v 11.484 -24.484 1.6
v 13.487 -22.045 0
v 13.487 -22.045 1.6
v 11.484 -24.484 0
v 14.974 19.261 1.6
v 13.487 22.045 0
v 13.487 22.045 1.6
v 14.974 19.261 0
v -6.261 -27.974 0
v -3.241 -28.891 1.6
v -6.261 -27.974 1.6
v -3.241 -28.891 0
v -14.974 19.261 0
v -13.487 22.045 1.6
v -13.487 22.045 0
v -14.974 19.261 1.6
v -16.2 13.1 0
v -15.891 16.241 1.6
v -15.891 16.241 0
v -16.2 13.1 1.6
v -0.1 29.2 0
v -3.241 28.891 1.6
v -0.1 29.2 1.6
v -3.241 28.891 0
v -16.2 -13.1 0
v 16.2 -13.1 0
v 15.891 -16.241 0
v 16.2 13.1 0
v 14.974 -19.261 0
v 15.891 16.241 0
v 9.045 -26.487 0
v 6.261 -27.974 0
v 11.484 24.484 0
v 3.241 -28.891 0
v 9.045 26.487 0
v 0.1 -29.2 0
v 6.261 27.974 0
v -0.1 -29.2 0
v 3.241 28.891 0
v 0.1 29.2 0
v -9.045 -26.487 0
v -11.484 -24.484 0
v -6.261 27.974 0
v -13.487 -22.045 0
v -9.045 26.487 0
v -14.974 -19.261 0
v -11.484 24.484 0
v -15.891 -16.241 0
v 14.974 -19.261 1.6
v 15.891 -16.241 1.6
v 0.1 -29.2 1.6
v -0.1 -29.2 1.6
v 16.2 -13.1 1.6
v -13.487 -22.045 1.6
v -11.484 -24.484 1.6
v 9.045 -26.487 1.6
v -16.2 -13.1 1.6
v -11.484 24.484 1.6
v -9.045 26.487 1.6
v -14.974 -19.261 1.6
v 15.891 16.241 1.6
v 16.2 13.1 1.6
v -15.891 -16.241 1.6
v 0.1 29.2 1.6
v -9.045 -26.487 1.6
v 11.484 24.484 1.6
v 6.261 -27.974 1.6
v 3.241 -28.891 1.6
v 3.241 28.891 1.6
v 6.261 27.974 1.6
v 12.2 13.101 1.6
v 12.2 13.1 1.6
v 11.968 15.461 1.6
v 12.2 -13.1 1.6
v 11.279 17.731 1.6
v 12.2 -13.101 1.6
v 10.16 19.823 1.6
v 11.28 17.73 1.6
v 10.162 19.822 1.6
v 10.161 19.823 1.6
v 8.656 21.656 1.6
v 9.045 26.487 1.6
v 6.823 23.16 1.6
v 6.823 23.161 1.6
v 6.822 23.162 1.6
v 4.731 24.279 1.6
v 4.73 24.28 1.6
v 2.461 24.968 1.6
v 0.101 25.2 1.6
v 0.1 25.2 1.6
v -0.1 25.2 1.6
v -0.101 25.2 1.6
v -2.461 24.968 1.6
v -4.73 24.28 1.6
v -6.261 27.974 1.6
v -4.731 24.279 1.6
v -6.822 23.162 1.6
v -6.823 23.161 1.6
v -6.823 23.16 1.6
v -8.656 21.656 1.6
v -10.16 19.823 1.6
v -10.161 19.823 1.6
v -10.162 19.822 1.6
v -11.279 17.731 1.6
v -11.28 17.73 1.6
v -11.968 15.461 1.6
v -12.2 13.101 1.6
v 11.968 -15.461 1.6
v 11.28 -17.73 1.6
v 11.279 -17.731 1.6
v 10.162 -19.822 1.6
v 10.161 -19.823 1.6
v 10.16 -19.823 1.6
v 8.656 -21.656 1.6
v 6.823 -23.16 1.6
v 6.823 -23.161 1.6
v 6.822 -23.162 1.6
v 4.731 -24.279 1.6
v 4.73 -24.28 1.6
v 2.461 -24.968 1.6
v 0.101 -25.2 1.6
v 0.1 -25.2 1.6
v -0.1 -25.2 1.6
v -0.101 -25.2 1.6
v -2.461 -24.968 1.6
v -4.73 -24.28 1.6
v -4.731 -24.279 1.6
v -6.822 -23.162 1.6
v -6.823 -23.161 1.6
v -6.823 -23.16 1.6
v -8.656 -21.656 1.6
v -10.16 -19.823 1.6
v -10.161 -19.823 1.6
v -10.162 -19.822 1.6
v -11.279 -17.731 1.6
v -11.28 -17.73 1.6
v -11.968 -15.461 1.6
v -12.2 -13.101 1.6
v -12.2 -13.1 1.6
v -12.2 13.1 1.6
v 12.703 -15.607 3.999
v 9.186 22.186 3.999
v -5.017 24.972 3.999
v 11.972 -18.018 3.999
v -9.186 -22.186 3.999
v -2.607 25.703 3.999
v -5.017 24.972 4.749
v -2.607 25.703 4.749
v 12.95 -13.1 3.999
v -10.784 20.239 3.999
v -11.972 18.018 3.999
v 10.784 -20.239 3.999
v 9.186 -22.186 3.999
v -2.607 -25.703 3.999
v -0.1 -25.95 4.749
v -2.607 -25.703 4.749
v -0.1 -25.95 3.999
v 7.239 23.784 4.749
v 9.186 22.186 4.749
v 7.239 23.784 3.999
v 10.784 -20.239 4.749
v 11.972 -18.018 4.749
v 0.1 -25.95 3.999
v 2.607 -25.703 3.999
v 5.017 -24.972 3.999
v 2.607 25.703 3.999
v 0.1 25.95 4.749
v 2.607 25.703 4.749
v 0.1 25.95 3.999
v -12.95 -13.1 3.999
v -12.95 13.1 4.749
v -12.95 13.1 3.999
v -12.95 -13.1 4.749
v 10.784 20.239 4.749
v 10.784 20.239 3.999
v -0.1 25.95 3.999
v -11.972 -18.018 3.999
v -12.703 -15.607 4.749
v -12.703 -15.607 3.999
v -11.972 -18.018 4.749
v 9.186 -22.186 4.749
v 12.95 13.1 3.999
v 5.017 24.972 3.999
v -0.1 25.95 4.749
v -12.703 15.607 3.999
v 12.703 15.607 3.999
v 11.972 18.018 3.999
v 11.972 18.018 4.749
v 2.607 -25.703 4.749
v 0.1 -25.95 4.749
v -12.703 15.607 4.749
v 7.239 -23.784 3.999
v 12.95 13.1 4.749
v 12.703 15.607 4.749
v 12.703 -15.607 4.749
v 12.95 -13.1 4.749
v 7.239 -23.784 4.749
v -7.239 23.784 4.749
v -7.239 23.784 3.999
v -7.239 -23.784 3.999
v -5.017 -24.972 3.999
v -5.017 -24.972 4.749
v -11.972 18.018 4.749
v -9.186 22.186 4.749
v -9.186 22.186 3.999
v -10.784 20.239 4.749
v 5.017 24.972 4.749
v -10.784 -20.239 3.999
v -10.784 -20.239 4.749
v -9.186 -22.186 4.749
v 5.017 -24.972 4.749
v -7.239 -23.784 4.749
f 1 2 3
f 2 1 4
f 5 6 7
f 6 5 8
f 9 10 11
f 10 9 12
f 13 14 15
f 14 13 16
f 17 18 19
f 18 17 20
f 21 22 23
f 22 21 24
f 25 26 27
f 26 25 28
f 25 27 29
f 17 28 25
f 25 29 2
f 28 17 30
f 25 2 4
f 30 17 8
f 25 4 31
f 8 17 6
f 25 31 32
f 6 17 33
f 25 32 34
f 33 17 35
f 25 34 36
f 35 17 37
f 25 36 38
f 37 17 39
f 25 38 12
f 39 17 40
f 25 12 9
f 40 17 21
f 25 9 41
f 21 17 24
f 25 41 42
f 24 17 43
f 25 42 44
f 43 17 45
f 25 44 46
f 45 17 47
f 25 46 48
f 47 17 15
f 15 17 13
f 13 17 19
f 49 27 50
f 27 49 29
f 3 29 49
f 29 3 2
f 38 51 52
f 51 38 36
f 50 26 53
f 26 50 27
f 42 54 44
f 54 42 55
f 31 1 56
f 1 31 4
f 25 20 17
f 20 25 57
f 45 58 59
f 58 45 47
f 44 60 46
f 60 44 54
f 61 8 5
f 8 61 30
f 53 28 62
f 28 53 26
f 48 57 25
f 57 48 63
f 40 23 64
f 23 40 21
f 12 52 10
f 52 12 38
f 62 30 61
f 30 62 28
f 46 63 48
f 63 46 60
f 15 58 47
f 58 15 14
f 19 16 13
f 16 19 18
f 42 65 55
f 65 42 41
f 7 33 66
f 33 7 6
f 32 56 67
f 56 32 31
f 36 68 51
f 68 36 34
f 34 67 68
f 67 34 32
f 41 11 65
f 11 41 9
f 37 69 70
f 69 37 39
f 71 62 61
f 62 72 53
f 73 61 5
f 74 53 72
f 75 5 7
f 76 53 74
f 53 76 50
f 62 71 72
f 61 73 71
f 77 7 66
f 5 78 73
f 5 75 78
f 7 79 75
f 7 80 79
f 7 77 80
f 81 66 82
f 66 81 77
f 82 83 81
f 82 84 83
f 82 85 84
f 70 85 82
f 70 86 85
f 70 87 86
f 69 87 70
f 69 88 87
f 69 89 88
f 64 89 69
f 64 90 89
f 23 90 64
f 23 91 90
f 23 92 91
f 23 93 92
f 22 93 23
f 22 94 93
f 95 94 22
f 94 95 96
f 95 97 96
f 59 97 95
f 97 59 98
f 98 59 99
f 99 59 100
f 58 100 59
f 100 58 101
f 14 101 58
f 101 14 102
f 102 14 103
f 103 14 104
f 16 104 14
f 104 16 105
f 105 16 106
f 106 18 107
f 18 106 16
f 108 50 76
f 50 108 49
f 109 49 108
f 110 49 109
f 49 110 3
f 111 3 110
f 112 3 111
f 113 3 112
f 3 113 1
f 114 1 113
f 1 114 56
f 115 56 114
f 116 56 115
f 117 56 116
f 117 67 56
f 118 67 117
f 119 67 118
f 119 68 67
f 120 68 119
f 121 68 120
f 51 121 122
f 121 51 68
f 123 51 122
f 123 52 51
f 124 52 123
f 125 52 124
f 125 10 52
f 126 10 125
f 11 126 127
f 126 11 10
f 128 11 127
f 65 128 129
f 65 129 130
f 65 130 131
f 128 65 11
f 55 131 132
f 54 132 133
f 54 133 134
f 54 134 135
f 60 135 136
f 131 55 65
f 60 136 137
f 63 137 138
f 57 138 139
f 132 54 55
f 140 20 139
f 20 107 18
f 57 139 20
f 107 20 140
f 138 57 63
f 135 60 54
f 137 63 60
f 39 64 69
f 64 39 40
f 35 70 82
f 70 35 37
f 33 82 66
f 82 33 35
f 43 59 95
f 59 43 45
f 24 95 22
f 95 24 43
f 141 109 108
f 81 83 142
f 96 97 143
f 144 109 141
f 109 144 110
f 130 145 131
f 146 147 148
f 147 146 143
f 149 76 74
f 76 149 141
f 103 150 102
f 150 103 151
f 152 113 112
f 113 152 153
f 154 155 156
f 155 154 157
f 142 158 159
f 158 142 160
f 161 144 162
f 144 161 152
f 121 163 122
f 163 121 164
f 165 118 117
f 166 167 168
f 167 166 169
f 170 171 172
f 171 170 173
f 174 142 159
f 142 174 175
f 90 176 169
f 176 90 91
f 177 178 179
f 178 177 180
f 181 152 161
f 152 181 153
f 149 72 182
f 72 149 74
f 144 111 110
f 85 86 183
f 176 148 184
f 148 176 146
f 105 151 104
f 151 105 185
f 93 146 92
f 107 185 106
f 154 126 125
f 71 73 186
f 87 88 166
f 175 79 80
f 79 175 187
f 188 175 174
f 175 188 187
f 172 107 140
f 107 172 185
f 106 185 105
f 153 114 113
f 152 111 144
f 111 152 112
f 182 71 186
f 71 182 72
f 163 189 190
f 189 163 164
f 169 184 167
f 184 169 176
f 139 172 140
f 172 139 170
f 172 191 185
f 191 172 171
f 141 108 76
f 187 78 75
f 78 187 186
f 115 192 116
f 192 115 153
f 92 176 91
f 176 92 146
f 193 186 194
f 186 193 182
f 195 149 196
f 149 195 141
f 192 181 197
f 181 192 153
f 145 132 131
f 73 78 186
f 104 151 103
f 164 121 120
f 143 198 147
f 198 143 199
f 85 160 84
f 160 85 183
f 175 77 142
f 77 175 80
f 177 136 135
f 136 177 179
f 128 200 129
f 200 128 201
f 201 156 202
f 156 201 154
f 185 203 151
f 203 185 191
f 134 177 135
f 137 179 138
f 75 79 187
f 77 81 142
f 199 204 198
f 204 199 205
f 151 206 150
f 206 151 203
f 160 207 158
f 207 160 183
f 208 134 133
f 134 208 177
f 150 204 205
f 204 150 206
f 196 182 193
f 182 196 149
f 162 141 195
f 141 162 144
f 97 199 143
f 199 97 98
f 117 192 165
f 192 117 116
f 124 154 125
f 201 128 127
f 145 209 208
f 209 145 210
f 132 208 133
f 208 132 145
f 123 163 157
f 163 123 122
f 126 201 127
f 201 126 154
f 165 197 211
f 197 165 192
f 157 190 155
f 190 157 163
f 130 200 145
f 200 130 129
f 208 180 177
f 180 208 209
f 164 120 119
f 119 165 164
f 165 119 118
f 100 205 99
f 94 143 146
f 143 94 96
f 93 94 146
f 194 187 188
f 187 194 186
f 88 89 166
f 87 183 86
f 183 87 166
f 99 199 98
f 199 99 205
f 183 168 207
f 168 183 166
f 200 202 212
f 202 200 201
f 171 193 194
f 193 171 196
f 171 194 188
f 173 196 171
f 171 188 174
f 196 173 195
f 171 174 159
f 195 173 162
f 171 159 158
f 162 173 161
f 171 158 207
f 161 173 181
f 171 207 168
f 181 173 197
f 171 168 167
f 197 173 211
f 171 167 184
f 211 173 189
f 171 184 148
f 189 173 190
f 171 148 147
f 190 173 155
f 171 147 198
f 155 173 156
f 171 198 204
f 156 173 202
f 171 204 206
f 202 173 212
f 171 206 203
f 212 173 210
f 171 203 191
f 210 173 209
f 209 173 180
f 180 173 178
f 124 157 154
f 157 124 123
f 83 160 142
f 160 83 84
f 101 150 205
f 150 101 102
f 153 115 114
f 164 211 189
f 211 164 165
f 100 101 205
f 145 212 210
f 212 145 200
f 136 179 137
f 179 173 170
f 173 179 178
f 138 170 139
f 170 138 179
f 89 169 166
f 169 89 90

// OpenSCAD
// file: ../globals.scad
$fn = 64;

// The tolerance of your 3d printer that results in a "tight fit" of two parts.
tolerance = 0.1;

// A small value to be used to offset unions and differences to avoid "z-fighting"
epsilon = 0.001;
// file: ../shapes.scad
// The xy_ variants of shape modules are centered with respect to the X/Y axes and "sit" on te XY plane.

$fn=32;

module xy_cube(width, depth, height) {
    translate([0, 0, height / 2])
    cube([width, depth, height], center=true);
}

module xy_cylinder(
    h,
    r, r1, r2,
    d, d1, d2)
{
    translate([0, 0, h / 2])
    cylinder(h=h, r=r, r1=r1, r2=r2, d=d, d1=d1, d2=d2, center=true);
}

module rounded_square(width, length, radius) {
    diameter = radius * 2;
    
    minkowski() {
        square([width - diameter, length - diameter], center=true);
        circle(radius);
    }
}

// Spreads out its children, spacing them along the x/y/z axis by the given amount.
module spread(x, y, z) {
    for(i = [0 : $children -1 ]) {
        translate([i*x, i*y, i*z])
        children(i);
    }
}

spread(15, 0, 0) {
    xy_cube(10, 10, 10);
    xy_cylinder(10, d=10);
    rounded_square(5, 10, 1);
}
// main file
// Hatch covers for the DragonForce 65 Model Sailboat
// These are designed to be printed with a flexible filament, and be water-resistant
// when press-fit.

use <../shapes.scad>

include <../globals.scad>

module hatch_cover(
    width,
    length,
    corner_radius,
    cover_thickness = 1.6,
    cover_overlap = 4.0,
    plug_depth = 2.4,
    plug_lip = 0.75
) {
    // Cover
    linear_extrude(cover_thickness)
    rounded_square(
        width + (cover_overlap*2),
        length + (cover_overlap*2),
        corner_radius + cover_overlap
    );
    
    translate([0, 0, cover_thickness - epsilon])
    hull() {
        linear_extrude(plug_lip)
        rounded_square(width, length, corner_radius);
        
        translate([0, 0, plug_depth])
        linear_extrude(plug_lip)
        rounded_square(
            width + (plug_lip*2),
            length + (plug_lip*2),
            corner_radius + plug_lip
        );      
    }
}

module small_hatch_cover() {    
    hatch_cover(24.4, 50.4, 12.1);
}

small_hatch_cover();
